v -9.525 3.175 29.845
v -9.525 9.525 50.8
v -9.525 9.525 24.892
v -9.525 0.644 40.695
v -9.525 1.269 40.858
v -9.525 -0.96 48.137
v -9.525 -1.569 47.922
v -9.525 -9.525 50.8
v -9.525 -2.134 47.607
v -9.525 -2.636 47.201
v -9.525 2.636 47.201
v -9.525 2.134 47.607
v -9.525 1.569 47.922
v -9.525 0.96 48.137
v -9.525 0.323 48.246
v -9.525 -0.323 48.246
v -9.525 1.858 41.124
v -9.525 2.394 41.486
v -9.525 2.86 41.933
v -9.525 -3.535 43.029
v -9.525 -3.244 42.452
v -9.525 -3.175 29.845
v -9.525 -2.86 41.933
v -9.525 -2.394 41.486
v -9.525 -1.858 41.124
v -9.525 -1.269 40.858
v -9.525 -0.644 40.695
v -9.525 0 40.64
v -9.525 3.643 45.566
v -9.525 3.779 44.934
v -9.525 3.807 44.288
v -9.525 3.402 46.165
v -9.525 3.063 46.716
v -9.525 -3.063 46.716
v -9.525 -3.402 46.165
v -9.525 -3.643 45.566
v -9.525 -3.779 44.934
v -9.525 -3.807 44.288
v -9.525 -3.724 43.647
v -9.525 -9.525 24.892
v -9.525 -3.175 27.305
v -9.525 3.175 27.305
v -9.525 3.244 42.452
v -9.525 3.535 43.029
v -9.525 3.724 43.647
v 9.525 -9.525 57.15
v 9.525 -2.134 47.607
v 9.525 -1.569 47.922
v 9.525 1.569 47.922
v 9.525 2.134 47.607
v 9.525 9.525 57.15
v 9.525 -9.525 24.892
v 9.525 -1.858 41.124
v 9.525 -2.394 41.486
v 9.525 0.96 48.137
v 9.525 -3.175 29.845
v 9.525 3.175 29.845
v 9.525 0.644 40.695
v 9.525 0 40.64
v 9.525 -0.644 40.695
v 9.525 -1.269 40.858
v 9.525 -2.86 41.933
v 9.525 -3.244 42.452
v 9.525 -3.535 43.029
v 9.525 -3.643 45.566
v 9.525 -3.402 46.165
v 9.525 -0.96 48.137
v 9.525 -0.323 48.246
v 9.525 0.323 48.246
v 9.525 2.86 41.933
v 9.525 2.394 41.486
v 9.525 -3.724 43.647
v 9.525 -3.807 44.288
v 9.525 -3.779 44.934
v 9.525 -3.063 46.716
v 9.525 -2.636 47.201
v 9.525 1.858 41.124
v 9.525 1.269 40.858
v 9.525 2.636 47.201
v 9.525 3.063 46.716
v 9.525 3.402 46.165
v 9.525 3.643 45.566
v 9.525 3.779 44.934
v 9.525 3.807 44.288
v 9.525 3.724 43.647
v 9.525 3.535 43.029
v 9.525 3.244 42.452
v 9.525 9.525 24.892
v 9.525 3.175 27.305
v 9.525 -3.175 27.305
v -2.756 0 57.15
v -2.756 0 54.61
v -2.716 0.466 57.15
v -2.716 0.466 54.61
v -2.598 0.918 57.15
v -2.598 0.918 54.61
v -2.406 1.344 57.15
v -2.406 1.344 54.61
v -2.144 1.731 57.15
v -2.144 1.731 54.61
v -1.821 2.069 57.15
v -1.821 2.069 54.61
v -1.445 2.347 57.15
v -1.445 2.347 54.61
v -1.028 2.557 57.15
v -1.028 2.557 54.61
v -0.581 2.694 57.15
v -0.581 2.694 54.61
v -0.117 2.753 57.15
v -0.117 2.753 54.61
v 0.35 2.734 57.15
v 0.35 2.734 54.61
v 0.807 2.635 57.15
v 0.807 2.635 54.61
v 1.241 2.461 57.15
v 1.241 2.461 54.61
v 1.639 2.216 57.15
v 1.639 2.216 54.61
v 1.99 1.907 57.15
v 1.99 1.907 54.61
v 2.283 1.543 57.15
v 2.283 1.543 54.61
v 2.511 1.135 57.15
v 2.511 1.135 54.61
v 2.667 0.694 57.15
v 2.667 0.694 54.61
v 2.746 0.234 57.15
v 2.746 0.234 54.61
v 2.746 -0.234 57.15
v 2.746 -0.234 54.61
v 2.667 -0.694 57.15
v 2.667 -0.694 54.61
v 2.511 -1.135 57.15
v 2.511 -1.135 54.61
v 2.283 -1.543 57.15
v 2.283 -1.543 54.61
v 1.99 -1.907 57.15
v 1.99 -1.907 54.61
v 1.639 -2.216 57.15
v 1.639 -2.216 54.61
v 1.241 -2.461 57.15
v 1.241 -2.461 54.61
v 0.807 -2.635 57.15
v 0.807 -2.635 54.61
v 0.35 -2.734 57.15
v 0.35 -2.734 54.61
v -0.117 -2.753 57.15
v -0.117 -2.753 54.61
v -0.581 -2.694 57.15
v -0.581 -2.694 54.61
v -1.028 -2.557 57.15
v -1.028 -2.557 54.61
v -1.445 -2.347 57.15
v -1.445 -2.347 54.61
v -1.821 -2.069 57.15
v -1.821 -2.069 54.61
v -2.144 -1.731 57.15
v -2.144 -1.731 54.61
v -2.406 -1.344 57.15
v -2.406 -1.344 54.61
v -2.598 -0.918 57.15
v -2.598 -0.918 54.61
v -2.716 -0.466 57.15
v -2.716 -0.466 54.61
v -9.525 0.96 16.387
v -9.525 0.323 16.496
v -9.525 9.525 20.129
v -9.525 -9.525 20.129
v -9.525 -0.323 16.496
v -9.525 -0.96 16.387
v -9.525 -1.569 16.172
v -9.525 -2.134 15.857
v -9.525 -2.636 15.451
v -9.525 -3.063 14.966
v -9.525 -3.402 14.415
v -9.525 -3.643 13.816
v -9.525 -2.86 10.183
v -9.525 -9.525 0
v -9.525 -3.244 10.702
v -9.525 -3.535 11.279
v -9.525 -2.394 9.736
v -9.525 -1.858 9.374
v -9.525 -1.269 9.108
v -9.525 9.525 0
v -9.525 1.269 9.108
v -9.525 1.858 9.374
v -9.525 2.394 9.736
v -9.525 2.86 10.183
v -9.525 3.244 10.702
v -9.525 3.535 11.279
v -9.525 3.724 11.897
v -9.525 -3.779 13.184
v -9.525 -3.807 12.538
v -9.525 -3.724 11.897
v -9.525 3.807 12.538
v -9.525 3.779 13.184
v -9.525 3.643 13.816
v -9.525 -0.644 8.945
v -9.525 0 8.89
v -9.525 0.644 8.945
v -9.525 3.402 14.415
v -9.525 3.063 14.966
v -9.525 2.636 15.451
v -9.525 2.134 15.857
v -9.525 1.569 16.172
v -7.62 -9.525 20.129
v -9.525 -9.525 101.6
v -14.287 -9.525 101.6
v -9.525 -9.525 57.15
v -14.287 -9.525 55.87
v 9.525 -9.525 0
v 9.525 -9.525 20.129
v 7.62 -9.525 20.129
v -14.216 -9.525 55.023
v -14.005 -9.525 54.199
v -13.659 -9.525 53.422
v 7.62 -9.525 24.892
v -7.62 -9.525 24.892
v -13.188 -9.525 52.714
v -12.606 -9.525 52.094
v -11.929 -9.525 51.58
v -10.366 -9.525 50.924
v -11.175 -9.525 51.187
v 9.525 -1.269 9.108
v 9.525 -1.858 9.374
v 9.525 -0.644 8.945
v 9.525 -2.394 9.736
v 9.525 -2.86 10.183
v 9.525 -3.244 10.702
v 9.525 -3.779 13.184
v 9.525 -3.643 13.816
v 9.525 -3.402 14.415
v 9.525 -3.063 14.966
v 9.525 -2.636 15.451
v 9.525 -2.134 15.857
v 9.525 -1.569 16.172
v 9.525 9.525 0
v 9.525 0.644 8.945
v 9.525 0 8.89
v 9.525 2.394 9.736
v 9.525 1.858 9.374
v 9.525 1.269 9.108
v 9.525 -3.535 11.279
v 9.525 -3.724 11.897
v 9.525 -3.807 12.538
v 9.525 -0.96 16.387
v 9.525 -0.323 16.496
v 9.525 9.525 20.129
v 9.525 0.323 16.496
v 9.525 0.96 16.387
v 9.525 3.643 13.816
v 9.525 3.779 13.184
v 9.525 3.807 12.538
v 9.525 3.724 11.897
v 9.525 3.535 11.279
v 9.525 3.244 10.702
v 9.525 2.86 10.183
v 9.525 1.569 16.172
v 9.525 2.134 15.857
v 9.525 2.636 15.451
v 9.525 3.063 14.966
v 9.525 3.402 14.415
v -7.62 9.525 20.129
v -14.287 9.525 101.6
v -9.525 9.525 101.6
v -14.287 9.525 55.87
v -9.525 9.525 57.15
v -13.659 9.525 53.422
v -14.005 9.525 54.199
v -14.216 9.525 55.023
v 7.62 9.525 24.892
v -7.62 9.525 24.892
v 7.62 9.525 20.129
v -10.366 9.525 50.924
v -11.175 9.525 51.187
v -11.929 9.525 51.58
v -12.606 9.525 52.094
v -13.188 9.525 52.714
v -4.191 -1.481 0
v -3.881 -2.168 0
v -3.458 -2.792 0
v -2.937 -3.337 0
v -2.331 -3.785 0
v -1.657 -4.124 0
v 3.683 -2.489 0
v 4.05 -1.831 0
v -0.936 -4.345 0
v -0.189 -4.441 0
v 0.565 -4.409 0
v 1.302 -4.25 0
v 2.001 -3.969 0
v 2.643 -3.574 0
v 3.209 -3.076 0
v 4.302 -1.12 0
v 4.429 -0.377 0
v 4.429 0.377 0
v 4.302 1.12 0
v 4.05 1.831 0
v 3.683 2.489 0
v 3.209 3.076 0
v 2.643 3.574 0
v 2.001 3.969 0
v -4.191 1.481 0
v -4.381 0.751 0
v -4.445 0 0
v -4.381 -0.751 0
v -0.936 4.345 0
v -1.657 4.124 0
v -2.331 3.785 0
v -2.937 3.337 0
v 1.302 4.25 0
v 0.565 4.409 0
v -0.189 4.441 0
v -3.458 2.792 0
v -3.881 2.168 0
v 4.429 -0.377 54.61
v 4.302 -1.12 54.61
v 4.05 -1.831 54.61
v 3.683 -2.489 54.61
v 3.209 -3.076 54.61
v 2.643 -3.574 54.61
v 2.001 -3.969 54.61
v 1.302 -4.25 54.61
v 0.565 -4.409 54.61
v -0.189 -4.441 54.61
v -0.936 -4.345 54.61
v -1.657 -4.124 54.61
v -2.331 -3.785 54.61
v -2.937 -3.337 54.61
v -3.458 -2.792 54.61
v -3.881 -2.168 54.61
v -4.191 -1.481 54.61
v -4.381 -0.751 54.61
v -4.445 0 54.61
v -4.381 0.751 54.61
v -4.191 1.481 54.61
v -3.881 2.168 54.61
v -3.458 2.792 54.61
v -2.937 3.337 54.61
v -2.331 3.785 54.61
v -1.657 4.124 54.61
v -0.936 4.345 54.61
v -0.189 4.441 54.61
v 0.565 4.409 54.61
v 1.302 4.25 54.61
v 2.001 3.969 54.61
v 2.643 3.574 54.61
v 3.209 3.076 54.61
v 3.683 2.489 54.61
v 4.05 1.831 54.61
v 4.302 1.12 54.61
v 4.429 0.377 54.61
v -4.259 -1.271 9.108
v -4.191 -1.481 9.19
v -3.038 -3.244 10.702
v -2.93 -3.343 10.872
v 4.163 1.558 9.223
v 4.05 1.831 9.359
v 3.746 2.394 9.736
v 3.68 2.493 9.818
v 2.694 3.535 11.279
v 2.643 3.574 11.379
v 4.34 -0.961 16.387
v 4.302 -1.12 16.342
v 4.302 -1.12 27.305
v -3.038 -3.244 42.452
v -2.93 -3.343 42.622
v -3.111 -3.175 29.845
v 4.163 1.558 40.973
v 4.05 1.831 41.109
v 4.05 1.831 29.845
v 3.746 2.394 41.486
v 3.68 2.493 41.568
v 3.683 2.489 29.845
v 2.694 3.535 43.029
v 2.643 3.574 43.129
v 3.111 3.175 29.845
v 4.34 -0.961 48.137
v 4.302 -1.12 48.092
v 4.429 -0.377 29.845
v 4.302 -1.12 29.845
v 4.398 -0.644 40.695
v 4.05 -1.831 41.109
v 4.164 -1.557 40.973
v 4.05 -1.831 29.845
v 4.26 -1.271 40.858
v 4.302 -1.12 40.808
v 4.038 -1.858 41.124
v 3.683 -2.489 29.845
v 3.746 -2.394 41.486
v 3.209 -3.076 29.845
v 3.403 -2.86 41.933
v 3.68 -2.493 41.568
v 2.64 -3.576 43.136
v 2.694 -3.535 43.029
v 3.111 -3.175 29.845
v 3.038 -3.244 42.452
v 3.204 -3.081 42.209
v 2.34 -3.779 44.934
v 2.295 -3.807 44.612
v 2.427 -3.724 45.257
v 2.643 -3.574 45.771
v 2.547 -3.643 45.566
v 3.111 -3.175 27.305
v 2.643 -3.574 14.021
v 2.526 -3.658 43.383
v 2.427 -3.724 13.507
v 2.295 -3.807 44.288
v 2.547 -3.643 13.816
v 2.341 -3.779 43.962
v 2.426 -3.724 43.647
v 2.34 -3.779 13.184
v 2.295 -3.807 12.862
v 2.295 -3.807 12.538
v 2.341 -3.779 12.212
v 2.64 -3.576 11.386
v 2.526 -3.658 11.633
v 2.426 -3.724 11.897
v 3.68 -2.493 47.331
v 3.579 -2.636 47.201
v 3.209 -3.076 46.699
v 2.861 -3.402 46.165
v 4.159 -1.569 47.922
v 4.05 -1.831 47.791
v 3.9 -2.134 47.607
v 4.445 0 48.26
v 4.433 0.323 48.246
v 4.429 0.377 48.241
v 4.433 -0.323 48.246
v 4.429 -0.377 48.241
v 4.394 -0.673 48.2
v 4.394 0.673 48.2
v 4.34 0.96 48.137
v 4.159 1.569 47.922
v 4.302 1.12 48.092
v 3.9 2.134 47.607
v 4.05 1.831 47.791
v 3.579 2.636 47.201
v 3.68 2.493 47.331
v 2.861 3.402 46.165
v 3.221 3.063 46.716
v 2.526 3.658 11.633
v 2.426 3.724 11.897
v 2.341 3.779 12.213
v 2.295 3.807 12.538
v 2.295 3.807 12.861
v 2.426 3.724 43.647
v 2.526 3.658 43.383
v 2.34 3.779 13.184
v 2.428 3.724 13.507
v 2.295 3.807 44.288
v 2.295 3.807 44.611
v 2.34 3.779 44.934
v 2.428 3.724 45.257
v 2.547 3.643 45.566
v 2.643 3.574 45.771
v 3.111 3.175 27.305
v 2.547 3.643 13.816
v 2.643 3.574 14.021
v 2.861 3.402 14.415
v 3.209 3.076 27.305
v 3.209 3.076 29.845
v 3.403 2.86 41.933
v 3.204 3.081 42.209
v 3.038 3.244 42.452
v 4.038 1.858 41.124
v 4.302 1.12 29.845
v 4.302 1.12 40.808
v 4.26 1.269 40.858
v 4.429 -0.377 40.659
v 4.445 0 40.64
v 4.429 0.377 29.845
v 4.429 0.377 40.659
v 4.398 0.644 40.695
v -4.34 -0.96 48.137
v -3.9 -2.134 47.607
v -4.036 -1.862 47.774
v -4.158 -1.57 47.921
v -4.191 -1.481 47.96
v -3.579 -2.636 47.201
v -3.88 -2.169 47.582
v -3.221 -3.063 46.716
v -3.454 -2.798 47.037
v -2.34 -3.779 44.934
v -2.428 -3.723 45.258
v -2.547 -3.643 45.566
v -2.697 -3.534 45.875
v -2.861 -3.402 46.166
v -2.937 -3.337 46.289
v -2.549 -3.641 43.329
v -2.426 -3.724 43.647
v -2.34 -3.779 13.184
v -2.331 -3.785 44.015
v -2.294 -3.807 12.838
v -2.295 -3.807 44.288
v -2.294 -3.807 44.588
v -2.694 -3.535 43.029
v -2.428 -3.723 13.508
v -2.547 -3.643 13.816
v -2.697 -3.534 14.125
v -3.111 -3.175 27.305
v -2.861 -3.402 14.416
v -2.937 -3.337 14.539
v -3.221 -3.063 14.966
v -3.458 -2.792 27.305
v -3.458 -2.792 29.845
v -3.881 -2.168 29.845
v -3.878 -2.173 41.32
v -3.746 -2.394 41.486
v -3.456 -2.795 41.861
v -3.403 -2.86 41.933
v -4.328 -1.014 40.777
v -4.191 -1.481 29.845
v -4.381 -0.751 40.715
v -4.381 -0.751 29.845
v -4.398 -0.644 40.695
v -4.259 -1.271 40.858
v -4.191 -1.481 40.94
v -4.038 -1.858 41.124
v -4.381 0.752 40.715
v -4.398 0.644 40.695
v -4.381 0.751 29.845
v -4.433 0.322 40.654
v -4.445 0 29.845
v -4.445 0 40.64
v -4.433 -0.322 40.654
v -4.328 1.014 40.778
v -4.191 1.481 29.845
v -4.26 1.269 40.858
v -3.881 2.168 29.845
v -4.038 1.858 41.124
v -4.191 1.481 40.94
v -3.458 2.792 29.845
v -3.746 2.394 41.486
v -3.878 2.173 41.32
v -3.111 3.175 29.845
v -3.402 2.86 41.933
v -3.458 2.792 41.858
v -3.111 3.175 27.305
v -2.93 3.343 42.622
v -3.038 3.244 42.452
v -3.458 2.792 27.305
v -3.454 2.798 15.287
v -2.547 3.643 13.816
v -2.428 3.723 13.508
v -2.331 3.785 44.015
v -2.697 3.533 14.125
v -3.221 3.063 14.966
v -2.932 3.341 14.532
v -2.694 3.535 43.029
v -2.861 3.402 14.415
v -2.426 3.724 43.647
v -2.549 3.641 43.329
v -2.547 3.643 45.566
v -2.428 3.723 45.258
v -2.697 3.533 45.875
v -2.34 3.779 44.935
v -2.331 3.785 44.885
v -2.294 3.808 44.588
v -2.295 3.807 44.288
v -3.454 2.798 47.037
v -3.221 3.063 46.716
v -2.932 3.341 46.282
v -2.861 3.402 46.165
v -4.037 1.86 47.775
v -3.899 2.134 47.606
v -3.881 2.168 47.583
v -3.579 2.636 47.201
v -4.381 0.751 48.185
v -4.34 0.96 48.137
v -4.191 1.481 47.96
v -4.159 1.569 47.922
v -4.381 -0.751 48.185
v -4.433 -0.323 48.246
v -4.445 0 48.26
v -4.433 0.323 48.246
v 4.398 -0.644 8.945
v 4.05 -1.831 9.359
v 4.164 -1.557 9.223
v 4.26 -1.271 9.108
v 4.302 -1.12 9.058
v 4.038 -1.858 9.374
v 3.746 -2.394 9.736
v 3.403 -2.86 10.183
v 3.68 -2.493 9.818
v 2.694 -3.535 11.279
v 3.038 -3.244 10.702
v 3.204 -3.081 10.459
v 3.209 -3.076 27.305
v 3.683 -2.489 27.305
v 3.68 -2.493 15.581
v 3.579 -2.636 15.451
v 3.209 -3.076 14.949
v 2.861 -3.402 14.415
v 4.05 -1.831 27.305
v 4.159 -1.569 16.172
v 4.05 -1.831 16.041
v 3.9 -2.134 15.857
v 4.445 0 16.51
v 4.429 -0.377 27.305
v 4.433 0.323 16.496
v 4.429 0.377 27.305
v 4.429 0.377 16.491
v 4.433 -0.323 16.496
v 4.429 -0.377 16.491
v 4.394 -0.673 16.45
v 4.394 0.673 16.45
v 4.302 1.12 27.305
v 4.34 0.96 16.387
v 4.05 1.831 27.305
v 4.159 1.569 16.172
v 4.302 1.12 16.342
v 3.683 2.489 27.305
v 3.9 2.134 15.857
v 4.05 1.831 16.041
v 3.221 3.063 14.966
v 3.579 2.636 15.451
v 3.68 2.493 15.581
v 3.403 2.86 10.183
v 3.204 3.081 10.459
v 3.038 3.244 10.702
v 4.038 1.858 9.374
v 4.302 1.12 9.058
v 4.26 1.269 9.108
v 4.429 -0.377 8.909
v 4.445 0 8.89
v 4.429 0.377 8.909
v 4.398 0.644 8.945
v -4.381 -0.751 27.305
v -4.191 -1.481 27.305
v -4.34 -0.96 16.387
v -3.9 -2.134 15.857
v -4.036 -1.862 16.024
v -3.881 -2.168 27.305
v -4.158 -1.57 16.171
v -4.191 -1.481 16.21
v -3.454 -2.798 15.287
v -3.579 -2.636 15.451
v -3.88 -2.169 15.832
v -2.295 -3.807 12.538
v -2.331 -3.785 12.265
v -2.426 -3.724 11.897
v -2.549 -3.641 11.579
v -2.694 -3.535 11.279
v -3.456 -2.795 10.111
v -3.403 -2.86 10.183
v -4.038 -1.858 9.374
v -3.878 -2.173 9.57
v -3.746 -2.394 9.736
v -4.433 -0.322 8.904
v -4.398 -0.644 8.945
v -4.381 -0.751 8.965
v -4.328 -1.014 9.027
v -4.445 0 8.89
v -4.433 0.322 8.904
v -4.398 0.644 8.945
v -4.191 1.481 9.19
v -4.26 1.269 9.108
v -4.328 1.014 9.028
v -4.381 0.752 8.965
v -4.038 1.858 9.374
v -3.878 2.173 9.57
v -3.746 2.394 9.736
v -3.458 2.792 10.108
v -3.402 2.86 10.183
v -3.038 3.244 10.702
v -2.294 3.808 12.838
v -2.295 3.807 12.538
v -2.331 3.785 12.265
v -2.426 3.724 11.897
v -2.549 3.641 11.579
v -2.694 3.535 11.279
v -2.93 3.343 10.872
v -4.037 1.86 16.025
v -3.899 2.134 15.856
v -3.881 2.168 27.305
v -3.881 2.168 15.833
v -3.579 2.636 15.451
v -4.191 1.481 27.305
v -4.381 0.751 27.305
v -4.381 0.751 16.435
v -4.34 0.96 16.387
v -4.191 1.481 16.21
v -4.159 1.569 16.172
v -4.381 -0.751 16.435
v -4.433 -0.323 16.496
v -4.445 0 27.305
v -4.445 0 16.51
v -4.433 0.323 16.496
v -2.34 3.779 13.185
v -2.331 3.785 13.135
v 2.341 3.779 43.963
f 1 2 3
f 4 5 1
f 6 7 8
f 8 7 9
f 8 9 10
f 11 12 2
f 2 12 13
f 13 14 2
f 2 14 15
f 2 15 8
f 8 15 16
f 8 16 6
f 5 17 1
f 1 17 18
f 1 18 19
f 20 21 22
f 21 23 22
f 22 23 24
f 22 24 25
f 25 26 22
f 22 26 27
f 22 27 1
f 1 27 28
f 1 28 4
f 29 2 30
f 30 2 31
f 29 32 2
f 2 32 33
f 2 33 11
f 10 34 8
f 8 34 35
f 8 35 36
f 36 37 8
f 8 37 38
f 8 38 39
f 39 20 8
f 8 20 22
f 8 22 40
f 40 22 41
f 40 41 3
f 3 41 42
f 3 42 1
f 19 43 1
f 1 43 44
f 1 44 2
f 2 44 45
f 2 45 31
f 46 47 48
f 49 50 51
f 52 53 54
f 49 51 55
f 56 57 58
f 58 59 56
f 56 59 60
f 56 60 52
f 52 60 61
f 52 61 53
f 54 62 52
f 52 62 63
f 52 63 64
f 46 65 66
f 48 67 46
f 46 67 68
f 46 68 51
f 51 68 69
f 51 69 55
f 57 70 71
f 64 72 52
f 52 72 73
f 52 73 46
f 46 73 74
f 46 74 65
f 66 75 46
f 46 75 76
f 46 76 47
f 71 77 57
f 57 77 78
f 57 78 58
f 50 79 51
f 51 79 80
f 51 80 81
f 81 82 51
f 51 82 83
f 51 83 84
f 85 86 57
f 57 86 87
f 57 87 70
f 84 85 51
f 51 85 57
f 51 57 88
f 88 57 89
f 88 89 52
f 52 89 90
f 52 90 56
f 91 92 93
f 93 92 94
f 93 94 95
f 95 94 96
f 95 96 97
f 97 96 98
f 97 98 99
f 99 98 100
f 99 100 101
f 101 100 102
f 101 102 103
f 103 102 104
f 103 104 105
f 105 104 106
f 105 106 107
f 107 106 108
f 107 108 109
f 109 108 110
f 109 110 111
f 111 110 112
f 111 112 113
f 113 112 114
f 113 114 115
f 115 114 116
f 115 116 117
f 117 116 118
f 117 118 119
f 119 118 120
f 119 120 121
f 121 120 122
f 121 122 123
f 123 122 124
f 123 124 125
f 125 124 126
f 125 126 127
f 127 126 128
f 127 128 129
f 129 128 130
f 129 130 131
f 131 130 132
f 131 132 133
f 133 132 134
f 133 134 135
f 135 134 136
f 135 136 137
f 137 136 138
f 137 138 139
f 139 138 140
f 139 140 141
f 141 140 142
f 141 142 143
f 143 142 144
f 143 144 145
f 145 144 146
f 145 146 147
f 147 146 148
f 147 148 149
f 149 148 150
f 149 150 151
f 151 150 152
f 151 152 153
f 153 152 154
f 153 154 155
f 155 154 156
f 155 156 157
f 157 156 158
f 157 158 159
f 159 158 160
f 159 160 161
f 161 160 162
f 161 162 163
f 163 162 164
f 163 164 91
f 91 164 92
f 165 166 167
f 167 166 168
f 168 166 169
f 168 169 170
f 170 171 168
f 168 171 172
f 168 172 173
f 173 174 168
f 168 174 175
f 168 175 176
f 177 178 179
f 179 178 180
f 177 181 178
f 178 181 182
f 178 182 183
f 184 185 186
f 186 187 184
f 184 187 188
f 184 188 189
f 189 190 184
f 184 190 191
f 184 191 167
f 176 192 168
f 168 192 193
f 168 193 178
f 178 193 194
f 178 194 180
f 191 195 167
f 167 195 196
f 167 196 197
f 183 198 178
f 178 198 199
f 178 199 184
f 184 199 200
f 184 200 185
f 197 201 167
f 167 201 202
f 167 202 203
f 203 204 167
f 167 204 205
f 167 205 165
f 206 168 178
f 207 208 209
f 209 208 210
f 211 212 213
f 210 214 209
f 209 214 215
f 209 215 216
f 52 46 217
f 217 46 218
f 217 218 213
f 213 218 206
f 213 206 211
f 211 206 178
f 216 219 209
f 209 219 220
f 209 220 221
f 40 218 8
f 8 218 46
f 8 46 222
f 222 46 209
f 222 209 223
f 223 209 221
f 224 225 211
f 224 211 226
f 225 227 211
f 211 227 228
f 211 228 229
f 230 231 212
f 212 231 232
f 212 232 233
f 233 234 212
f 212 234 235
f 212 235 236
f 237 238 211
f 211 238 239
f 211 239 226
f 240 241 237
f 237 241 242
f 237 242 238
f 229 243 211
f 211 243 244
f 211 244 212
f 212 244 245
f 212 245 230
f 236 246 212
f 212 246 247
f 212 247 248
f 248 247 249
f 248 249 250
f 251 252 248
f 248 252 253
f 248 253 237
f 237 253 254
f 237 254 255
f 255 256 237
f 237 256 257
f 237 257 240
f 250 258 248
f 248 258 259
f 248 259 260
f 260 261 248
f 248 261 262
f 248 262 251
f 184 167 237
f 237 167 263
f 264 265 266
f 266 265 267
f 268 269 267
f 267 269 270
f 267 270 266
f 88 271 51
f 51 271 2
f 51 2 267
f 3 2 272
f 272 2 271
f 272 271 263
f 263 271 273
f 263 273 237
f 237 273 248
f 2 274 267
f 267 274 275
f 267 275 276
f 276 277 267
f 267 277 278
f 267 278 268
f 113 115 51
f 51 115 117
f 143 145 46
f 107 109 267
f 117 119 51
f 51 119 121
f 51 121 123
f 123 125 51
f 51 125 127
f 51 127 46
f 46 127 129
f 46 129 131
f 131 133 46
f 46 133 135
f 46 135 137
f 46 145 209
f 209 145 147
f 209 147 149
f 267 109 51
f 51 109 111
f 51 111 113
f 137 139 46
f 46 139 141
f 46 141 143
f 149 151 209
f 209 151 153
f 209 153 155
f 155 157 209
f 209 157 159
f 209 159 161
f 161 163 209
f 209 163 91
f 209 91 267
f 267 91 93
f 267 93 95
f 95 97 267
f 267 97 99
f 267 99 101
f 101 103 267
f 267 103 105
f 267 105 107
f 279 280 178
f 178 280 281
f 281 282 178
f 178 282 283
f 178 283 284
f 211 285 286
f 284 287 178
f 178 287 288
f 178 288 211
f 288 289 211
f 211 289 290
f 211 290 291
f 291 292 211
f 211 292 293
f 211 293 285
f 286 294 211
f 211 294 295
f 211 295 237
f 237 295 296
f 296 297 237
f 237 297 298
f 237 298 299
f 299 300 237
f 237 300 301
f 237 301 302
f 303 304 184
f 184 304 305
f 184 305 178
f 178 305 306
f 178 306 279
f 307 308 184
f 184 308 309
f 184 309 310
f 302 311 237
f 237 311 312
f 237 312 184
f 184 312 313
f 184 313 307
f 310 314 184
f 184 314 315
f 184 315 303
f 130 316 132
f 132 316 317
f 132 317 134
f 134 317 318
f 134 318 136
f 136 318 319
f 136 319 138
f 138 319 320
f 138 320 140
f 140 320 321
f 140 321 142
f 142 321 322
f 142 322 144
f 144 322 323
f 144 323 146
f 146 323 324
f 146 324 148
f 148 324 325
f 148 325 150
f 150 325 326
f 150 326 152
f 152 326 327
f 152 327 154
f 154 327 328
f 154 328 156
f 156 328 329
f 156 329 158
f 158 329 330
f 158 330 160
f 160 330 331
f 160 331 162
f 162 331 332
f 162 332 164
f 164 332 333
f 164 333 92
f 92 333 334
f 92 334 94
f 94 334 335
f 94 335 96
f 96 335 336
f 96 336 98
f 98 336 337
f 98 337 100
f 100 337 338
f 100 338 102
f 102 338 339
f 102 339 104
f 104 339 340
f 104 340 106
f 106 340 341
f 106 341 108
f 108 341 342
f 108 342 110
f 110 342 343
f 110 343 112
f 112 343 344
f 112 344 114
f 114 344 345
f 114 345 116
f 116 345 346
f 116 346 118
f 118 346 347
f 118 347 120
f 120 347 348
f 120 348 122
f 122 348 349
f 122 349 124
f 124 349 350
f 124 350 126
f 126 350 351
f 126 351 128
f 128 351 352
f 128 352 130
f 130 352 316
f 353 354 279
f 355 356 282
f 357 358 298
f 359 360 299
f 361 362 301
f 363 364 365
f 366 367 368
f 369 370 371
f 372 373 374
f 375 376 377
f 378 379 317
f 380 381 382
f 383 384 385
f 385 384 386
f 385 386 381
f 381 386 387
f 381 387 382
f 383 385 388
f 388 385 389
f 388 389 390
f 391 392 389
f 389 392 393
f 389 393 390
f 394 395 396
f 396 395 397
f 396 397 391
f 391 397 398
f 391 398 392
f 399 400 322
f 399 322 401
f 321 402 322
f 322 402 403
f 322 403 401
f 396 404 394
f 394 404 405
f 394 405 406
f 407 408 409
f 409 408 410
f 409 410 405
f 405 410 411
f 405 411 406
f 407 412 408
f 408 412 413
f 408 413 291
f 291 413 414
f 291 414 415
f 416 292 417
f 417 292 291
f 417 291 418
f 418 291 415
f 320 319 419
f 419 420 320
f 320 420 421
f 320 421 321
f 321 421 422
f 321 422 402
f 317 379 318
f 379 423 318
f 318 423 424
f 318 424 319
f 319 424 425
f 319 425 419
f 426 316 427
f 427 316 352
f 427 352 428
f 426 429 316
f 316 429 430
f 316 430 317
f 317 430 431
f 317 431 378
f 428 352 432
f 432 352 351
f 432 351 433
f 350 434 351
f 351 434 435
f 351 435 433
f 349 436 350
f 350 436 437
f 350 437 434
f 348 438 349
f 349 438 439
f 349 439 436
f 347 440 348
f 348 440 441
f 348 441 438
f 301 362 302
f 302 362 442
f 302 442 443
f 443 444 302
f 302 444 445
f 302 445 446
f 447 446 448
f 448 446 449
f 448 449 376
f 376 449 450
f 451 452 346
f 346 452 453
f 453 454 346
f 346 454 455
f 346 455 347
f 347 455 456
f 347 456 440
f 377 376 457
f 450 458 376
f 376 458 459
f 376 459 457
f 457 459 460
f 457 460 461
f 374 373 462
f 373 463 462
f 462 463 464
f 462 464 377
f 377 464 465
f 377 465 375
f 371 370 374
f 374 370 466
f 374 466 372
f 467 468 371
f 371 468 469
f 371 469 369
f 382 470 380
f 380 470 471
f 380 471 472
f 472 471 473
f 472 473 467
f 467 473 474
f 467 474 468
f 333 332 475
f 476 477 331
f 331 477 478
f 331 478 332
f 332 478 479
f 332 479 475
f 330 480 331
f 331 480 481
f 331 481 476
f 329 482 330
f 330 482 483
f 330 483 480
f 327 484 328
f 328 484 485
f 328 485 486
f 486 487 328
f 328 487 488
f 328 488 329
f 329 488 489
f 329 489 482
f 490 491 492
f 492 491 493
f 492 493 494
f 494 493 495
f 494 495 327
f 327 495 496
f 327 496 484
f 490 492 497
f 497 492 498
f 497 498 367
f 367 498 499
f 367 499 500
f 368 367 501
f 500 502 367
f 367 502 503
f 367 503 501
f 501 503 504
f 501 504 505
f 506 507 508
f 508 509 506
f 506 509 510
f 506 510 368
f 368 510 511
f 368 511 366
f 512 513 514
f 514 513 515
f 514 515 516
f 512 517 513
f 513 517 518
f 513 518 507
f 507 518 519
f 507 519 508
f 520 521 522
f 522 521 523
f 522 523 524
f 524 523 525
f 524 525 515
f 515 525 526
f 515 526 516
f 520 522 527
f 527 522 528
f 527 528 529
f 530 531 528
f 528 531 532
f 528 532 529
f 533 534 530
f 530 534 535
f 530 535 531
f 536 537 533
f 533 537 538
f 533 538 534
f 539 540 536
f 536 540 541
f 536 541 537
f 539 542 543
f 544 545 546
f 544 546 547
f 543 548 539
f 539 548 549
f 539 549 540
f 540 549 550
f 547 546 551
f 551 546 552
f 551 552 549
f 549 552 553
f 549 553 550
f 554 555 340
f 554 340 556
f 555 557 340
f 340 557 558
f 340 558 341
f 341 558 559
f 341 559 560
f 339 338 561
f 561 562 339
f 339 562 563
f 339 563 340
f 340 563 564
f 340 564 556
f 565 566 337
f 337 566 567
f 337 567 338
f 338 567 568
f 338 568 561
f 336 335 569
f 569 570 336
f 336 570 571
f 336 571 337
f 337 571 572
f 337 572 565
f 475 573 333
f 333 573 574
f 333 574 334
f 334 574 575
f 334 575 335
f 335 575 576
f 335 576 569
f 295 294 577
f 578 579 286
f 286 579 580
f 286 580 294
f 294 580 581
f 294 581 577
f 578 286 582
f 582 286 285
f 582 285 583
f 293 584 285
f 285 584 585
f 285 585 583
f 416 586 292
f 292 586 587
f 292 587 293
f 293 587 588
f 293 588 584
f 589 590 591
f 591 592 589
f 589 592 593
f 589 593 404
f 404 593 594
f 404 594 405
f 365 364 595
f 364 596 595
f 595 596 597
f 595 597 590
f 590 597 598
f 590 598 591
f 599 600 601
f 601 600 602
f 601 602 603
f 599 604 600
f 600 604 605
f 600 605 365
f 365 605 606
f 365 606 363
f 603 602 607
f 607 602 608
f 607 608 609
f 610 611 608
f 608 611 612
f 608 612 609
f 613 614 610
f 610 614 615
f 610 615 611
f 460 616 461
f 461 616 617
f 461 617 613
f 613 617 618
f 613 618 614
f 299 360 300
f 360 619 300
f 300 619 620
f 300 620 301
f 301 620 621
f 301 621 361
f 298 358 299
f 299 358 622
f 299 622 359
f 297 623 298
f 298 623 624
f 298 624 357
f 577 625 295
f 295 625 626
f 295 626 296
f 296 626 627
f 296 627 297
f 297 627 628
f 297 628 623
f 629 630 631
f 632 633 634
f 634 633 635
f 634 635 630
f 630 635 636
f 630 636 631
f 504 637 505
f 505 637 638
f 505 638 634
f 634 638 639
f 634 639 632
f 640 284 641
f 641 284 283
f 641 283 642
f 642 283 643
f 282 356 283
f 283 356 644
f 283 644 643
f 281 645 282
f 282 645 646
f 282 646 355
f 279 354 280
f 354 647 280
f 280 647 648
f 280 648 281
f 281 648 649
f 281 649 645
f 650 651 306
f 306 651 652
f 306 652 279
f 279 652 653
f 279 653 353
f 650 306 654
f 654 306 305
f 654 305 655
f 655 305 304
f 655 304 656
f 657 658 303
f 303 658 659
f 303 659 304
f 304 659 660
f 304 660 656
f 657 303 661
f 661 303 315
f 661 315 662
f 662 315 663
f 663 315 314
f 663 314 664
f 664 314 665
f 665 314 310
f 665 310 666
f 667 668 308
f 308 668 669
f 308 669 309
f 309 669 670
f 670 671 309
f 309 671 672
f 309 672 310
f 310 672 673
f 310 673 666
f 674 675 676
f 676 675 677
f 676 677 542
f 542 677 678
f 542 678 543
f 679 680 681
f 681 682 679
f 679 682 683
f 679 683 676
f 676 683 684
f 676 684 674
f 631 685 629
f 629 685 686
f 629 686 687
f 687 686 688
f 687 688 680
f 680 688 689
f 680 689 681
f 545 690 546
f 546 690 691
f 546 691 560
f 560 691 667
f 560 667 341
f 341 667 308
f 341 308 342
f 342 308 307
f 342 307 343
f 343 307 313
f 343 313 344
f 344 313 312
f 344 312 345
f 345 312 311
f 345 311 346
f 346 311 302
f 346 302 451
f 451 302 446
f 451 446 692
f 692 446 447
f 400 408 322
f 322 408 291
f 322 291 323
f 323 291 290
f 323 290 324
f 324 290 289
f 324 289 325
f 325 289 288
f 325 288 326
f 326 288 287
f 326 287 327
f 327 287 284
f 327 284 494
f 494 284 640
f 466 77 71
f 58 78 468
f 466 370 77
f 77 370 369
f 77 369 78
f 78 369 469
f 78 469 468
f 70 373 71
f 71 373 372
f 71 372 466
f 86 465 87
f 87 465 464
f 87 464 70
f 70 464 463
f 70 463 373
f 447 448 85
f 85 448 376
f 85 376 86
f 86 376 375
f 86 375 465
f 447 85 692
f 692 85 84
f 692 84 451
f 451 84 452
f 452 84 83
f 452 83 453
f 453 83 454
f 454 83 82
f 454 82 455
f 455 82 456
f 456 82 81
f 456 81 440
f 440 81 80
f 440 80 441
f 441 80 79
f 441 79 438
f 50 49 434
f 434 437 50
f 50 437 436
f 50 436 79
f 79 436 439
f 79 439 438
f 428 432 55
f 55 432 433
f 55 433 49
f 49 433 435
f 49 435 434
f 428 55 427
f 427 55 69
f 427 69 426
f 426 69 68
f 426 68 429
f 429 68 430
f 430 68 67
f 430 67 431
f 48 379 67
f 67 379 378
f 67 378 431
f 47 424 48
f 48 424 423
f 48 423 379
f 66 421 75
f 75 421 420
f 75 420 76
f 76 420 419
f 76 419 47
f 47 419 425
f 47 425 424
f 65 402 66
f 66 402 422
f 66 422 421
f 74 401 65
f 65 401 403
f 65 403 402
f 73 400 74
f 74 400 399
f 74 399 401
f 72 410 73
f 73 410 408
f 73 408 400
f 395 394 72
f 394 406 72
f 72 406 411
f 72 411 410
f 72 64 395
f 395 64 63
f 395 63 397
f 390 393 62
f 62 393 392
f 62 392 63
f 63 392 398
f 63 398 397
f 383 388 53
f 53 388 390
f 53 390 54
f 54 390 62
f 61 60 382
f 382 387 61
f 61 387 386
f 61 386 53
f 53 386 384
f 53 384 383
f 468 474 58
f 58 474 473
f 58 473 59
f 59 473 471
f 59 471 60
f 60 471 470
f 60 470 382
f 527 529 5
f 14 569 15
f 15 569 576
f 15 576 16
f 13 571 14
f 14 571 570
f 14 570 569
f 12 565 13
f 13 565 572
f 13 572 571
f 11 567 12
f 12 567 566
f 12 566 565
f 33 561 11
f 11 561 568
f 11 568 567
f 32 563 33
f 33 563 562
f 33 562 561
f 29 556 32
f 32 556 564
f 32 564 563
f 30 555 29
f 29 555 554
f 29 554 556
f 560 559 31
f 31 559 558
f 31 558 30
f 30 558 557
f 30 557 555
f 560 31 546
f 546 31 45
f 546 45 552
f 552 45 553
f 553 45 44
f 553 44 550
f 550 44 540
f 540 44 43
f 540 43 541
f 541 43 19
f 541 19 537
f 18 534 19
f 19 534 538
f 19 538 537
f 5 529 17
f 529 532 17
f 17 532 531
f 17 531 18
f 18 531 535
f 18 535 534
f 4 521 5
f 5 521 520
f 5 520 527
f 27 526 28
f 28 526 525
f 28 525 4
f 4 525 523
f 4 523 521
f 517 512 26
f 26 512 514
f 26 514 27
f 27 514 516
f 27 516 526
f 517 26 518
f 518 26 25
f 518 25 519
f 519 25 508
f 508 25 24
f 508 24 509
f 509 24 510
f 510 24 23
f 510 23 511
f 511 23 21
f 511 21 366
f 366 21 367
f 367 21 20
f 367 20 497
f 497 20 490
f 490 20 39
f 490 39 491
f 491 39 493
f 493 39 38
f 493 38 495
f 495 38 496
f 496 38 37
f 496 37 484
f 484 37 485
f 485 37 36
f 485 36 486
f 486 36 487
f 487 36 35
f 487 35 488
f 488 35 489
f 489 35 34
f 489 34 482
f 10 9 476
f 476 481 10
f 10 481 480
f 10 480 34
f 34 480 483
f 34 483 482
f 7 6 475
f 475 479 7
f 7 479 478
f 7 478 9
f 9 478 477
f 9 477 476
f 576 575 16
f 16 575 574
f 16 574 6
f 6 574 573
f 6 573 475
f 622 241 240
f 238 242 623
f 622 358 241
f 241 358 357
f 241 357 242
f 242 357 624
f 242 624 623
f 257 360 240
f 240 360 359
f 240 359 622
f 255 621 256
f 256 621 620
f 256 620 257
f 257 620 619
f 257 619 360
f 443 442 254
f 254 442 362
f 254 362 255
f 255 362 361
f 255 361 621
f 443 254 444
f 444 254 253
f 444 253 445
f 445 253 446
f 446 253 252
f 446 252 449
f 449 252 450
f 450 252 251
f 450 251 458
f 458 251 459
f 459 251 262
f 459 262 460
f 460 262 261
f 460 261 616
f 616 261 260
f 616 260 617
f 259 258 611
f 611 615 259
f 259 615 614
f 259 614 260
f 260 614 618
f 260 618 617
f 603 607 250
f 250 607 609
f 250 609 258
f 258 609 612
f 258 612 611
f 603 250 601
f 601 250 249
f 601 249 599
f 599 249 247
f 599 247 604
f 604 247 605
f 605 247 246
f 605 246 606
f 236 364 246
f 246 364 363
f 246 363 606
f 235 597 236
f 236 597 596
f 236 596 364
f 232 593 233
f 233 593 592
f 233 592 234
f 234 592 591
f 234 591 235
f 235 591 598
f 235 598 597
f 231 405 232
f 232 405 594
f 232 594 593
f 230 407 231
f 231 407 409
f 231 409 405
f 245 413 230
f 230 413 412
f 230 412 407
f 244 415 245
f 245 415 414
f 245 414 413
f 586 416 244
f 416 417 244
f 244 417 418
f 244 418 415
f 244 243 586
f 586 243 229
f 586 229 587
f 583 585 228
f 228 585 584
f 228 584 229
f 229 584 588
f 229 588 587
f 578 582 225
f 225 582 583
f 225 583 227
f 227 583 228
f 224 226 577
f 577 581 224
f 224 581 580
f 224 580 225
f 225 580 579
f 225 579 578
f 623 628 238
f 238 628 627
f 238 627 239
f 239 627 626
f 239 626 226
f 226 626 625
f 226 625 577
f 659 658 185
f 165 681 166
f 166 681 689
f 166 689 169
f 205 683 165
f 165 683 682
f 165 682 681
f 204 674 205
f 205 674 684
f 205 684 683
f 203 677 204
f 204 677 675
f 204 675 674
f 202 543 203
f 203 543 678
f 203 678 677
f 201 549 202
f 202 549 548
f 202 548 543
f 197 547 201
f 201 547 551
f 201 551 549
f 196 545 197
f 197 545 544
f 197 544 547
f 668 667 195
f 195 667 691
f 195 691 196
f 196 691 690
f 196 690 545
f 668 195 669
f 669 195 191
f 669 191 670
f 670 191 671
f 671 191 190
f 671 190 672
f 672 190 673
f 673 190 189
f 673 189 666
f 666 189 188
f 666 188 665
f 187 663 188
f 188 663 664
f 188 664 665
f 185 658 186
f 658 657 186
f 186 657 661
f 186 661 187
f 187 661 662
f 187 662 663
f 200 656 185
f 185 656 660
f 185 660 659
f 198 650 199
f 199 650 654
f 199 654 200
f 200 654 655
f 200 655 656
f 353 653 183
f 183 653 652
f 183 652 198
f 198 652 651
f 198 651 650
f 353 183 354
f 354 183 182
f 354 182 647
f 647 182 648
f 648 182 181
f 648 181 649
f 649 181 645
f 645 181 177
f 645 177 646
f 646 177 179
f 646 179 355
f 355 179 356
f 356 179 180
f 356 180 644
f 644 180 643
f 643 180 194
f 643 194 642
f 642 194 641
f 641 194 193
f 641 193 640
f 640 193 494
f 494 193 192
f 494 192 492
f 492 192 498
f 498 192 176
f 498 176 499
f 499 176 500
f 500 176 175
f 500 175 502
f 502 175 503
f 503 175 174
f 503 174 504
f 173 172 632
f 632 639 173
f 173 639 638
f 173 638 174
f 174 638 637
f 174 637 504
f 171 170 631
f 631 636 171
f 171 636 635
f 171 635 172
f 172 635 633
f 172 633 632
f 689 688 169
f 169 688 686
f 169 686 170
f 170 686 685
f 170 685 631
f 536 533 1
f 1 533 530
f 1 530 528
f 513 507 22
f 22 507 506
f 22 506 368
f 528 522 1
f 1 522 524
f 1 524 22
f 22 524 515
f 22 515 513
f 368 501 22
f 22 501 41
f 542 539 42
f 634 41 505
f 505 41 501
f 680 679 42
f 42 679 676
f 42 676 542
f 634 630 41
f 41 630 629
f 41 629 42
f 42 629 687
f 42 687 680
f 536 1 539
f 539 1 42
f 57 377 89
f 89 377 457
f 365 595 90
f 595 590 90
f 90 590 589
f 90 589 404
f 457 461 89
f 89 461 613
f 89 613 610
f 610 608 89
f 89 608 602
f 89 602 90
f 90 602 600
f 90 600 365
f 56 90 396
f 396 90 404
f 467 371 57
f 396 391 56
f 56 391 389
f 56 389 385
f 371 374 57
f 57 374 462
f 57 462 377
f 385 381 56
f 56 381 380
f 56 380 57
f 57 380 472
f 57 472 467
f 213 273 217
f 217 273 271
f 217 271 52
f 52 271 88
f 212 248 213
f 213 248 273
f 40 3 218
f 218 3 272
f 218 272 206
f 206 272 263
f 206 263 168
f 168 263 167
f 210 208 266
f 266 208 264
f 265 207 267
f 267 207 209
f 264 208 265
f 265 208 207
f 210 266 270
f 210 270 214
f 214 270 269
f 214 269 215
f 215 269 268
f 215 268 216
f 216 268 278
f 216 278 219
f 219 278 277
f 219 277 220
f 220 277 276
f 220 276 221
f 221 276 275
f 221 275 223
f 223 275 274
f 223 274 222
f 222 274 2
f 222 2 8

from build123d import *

# Parameters (mm, degrees)
SKETCH1_W           = 19.05
SKETCH1_H           = 19.05
BOSS_EXTRUDE1_DEPTH = 57.15
SKETCH2_R           = 2.7559
CUT_EXTRUDE1_DEPTH  = 57.15
SKETCH3_R           = 4.445
CUT_EXTRUDE2_DEPTH  = 54.61
SKETCH4_R           = 3.81
CUT_EXTRUDE3_DEPTH  = 54.61
SKETCH6_W           = 2.54
SKETCH6_H           = 6.35
CUT_EXTRUDE4_DEPTH  = 54.61
SKETCH7_W           = 1.905
SKETCH7_H           = 4.7625
CUT_EXTRUDE5_DEPTH  = 54.61
SKETCH8_W           = 6.35
SKETCH8_H           = 19.05
SKETCH8_W_2         = 44.45
BOSS_EXTRUDE2_DEPTH = 4.7625
FILLET2_R           = 5.08


with BuildPart() as part:
    # Sketch1 → Boss-Extrude1 (new body)
    with BuildSketch(Plane.XY):
        Rectangle(SKETCH1_W, SKETCH1_H)
    extrude(amount=BOSS_EXTRUDE1_DEPTH)

    # Sketch2 → Cut-Extrude1 (cut)
    with BuildSketch(Plane(origin=(0, 0, 0), x_dir=(-1, 0, 0), z_dir=(0, 0, -1))):
        Circle(SKETCH2_R)
    extrude(amount=-CUT_EXTRUDE1_DEPTH, mode=Mode.SUBTRACT)

    # Sketch3 → Cut-Extrude2 (cut)
    with BuildSketch(Plane(origin=(0, 0, 0), x_dir=(-1, 0, 0), z_dir=(0, 0, -1))):
        Circle(SKETCH3_R)
    extrude(amount=-CUT_EXTRUDE2_DEPTH, mode=Mode.SUBTRACT)

    # Sketch4 → Cut-Extrude3 (cut)
    with BuildSketch(Plane(origin=(9.525, 0, 0), x_dir=(0, 0, -1), z_dir=(1, 0, 0))):
        with Locations((-44.45, 0)):
            Circle(SKETCH4_R)
        with Locations((-12.7, 0)):
            Circle(SKETCH4_R)
    extrude(amount=-CUT_EXTRUDE3_DEPTH, mode=Mode.SUBTRACT)

    # Sketch6 → Cut-Extrude4 (cut)
    with BuildSketch(Plane(origin=(9.525, 0, 0), x_dir=(0, 0, -1), z_dir=(1, 0, 0))):
        with Locations((-28.575, 0)):
            Rectangle(SKETCH6_W, SKETCH6_H)
    extrude(amount=-CUT_EXTRUDE4_DEPTH, mode=Mode.SUBTRACT)

    # Sketch7 → Cut-Extrude5 (cut)
    with BuildSketch(Plane.XZ.offset(9.525)):
        with Locations((-8.5725, 22.51075)):
            Rectangle(SKETCH7_W, SKETCH7_H)
        with Locations((8.5725, 22.51075)):
            Rectangle(SKETCH7_W, SKETCH7_H)
    extrude(amount=-CUT_EXTRUDE5_DEPTH, mode=Mode.SUBTRACT)

    # Sketch8 → Boss-Extrude2 (add)
    with BuildSketch(Plane.ZY.offset(9.525)):
        with Locations((53.975, 0)):
            Rectangle(SKETCH8_W, SKETCH8_H)
        with Locations((79.375, 0)):
            Rectangle(SKETCH8_W_2, SKETCH8_H)
    extrude(amount=BOSS_EXTRUDE2_DEPTH)

    # Fillet2
    # the kernel refuses this fillet: 5.08 mm, written as the material it takes off along each edge
    with BuildSketch(Plane(origin=(-14.2875, 22.200171042, 50.8), x_dir=(1, 0, 0), z_dir=(0, -1, 0))) as fillet2_piece_1:
        with BuildLine():
            CenterArc((5.08, 5.070068417), FILLET2_R, 180, 86.416678302)
            Line((0, 5.070068417), (-0.1016, 5.070068417))
            Line((-0.1016, 5.070068417), (-0.1016, 0))
            Line((-0.1016, 0), (0, -0.1016))
            ThreePointArc((0, -0.1016), (2.38125, -0.1016), (4.75615, -0.101401368))
            Line((4.75615, -0.101401368), (4.7625, 0))
        make_face()
    extrude(amount=44.400342083, mode=Mode.SUBTRACT)


solid = part.part
